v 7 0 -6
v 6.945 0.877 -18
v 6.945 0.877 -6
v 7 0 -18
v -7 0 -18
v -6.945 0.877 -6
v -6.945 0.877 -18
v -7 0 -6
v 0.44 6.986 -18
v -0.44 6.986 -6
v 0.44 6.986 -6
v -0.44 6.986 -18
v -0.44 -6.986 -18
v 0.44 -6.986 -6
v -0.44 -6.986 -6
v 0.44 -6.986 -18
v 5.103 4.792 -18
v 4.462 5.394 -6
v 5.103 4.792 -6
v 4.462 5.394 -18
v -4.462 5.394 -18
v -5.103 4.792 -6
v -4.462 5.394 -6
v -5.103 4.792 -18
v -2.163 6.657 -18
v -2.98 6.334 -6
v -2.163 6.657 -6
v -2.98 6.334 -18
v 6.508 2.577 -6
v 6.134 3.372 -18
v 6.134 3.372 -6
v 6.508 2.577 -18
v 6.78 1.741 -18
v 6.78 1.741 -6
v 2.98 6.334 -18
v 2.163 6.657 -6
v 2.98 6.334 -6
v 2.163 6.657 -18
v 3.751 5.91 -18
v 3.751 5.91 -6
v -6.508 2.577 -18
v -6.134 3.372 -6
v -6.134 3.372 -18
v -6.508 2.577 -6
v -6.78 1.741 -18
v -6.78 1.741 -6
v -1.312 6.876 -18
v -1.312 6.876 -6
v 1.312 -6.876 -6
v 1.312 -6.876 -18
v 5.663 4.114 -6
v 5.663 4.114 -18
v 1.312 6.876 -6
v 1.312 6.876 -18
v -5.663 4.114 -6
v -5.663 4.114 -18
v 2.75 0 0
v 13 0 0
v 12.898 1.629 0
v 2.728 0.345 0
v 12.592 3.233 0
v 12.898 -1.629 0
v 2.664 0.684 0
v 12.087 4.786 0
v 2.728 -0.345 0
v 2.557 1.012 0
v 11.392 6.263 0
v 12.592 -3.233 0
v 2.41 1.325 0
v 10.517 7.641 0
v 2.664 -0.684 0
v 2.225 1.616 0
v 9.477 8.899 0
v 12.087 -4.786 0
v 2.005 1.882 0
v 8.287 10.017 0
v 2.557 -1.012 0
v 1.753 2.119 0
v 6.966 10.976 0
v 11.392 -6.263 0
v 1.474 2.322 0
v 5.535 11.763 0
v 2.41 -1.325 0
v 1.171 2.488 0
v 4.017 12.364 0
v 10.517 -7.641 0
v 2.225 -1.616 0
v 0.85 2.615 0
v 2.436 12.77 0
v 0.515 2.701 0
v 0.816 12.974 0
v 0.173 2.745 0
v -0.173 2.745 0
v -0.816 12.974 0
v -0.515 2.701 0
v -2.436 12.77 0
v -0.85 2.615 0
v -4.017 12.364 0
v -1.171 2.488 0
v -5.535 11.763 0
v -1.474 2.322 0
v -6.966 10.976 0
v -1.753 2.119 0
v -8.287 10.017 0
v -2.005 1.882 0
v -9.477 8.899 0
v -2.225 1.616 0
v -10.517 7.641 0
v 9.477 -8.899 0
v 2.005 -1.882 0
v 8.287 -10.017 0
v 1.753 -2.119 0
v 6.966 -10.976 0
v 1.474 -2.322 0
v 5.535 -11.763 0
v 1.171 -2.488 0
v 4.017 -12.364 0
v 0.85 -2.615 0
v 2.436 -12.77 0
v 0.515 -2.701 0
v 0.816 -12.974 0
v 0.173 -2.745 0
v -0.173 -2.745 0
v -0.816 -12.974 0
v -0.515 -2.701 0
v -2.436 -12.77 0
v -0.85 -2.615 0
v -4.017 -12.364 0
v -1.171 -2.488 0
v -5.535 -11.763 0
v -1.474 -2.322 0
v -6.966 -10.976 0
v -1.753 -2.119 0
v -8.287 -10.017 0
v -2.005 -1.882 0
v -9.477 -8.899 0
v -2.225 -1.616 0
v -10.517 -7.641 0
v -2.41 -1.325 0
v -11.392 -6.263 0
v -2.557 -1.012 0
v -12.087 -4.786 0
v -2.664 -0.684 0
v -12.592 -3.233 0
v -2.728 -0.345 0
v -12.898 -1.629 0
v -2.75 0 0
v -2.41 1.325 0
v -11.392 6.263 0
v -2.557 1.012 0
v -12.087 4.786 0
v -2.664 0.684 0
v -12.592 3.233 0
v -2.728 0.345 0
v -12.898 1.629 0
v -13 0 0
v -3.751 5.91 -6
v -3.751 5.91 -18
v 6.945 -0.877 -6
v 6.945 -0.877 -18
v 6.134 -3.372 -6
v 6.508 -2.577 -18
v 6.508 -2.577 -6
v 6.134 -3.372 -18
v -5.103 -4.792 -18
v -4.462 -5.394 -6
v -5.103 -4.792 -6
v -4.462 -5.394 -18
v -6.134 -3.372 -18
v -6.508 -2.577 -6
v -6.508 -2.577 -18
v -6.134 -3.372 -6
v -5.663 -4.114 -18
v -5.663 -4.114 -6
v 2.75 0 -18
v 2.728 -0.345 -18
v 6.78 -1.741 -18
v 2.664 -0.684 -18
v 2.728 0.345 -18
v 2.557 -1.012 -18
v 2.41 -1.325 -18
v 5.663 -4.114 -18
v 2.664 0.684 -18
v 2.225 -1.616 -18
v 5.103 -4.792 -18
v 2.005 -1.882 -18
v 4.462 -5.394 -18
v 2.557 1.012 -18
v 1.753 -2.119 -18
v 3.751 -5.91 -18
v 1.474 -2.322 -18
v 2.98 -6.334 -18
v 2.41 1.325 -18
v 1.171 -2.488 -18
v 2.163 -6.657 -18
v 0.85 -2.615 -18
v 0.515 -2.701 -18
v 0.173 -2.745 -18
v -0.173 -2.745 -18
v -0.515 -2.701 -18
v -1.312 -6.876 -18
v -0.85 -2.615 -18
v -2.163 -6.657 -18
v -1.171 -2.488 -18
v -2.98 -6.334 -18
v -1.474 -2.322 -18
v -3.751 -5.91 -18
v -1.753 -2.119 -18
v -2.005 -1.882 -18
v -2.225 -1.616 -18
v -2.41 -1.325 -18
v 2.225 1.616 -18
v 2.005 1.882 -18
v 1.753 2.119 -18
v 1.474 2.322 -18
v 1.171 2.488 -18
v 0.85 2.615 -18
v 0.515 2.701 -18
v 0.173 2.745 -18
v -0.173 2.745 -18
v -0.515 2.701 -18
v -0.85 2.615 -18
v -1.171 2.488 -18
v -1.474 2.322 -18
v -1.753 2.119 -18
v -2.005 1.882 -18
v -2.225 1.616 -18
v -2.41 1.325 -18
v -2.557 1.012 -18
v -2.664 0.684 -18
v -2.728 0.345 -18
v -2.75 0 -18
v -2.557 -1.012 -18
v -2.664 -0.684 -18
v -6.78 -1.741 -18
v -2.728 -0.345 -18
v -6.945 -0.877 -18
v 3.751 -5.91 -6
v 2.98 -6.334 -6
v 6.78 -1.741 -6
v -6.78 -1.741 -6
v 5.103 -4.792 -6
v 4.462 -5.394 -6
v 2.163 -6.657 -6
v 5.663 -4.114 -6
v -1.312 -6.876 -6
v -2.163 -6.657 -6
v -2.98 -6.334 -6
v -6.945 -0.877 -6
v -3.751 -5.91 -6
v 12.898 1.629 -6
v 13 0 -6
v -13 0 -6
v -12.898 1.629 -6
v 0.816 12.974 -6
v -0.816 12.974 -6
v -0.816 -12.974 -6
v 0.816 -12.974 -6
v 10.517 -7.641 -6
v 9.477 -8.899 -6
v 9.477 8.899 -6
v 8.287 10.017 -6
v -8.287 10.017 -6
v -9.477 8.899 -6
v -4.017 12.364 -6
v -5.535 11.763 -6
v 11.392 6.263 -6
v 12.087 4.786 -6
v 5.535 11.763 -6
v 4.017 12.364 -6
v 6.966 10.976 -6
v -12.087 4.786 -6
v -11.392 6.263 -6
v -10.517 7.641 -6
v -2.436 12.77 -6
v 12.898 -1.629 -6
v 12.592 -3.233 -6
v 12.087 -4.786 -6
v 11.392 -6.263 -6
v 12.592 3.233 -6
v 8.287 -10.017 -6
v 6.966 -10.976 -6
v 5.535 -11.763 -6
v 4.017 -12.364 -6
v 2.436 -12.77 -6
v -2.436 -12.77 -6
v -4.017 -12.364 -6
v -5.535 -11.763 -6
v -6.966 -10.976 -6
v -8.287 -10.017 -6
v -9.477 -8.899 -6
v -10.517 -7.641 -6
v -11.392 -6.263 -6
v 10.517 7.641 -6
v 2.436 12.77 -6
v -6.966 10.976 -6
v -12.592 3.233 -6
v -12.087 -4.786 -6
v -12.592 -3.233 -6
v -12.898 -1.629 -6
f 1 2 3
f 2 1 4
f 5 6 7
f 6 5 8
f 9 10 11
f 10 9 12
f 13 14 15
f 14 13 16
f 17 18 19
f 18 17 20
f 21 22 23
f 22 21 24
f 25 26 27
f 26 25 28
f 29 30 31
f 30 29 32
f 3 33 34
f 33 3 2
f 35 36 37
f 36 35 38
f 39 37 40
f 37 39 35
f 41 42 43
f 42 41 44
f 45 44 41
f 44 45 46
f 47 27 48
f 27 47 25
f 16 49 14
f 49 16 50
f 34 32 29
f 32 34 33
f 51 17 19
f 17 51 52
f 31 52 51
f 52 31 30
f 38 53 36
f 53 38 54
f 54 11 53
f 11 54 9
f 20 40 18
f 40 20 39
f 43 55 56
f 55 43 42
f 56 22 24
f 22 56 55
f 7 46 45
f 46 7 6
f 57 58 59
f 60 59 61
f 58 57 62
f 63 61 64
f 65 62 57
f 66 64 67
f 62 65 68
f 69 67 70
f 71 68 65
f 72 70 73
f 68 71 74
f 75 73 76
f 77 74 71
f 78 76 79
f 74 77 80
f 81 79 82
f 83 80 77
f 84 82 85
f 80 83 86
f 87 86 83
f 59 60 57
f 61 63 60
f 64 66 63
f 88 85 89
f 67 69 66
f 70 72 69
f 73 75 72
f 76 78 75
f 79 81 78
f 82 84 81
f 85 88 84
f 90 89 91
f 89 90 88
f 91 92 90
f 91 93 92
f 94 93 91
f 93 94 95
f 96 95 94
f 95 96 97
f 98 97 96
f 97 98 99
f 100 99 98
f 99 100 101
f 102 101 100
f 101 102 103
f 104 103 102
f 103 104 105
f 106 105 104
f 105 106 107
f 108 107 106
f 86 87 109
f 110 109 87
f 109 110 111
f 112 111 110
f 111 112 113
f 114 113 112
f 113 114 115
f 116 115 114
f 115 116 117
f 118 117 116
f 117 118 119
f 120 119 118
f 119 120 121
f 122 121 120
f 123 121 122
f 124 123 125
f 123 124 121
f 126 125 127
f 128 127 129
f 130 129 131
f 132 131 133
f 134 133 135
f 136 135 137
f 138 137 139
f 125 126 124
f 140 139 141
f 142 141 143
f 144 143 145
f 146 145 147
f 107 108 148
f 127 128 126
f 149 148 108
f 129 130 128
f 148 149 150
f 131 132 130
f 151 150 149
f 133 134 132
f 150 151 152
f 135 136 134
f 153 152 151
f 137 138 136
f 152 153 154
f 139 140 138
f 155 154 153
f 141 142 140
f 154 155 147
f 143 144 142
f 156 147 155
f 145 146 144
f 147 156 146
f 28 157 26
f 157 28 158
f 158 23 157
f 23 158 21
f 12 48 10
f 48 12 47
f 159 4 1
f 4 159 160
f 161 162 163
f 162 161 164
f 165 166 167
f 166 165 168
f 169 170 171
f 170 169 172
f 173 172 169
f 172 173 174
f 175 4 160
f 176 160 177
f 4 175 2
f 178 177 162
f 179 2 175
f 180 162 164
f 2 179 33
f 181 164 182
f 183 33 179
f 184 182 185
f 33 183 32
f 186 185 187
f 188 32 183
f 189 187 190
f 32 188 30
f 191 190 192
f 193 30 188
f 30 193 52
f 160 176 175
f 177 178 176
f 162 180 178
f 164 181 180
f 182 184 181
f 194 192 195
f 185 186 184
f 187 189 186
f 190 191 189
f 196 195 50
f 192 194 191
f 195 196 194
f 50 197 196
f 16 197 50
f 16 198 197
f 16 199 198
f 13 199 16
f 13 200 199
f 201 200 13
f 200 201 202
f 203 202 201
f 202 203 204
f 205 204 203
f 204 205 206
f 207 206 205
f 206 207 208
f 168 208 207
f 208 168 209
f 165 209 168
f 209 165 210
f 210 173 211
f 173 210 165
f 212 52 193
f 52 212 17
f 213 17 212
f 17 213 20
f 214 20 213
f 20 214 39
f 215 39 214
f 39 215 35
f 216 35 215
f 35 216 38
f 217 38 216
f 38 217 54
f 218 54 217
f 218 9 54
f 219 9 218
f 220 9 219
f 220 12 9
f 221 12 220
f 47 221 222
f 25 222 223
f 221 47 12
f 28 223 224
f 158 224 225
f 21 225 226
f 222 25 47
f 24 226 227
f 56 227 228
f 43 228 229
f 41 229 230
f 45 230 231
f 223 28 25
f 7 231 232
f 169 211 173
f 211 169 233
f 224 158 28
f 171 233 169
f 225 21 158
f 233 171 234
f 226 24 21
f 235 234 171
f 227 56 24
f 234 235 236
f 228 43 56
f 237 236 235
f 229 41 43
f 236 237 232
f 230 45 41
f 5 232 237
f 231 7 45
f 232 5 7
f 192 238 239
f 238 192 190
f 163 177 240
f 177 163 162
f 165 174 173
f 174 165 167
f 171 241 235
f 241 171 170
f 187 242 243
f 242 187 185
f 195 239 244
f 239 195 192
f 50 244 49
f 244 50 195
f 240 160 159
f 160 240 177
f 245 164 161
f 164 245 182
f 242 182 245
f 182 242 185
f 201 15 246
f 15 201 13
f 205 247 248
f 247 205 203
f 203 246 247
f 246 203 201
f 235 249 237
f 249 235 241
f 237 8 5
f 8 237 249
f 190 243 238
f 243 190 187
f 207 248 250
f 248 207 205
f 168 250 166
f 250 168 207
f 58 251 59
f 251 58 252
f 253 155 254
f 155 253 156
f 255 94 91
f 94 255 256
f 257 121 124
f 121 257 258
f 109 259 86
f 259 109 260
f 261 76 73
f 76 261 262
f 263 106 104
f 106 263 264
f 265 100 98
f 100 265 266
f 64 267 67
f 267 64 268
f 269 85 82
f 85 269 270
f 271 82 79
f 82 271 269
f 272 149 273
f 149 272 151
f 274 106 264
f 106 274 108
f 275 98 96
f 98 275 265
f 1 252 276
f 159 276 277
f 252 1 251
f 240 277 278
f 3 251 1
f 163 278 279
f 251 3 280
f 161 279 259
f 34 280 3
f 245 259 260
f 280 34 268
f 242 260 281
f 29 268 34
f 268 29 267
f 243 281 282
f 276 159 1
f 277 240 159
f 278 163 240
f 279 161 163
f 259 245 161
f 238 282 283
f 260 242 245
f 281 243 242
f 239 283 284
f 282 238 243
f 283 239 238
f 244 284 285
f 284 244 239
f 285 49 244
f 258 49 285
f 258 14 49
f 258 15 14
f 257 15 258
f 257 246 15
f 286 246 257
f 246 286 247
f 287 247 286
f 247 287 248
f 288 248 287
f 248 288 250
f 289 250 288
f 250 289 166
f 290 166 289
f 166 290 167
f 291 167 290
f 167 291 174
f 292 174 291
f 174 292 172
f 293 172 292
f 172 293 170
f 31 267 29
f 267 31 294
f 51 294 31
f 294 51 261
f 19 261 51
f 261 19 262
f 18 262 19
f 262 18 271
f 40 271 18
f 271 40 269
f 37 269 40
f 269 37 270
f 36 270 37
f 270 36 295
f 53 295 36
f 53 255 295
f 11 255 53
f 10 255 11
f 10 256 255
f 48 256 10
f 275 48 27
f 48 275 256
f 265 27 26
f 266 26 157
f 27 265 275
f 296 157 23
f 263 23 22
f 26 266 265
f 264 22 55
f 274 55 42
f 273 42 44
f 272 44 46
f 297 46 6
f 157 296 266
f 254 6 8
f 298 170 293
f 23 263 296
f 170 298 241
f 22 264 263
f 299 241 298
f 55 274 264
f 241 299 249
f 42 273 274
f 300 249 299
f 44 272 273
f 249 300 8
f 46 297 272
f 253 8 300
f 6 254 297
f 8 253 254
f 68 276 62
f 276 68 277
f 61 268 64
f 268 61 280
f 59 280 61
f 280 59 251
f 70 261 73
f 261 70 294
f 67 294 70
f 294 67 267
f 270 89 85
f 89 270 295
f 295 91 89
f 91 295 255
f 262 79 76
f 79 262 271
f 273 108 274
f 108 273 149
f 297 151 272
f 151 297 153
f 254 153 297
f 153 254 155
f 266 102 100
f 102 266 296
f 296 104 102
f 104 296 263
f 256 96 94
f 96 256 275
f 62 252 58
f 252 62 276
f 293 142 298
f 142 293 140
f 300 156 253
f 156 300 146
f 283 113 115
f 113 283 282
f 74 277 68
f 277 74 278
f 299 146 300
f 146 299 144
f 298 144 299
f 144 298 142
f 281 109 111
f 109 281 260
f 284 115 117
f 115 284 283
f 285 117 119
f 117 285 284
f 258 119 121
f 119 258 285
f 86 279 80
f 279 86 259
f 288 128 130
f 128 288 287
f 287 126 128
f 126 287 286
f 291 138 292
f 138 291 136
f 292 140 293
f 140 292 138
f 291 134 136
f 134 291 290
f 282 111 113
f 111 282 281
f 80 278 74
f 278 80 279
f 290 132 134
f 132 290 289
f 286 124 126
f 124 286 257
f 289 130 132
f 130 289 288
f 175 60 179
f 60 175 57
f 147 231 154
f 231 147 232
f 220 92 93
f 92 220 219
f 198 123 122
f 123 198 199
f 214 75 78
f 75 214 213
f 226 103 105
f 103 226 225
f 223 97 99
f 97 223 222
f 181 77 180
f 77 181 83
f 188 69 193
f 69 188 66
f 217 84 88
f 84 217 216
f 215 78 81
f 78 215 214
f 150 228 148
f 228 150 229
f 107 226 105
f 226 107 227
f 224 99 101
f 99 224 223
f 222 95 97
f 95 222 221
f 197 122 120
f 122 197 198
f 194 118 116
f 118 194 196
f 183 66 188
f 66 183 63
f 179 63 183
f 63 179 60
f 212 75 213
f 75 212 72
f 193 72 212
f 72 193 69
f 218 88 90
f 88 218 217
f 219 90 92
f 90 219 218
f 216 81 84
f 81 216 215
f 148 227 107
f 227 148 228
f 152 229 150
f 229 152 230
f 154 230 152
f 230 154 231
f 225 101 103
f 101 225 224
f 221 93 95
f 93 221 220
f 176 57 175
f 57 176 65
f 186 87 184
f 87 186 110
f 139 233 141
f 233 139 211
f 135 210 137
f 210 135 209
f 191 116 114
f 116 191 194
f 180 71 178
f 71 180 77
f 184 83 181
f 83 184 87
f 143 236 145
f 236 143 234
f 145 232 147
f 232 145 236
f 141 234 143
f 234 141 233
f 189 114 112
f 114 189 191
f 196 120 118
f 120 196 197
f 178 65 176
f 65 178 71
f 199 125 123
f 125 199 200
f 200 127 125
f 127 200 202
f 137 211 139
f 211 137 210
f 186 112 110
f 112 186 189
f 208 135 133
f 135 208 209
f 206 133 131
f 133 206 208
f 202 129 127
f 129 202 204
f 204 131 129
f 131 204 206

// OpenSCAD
$fn = 50;


difference() {
	union() {
		translate(v = [0, 0, -18.0000000000]) {
			cylinder(h = 18, r = 7.0000000000);
		}
		translate(v = [0, 0, -6.0000000000]) {
			cylinder(h = 6, r = 13.0000000000);
		}
	}
	union() {
		#translate(v = [0, 0, -18]) {
			cylinder(h = 18, r = 2.7500000000);
		}
	}
}
